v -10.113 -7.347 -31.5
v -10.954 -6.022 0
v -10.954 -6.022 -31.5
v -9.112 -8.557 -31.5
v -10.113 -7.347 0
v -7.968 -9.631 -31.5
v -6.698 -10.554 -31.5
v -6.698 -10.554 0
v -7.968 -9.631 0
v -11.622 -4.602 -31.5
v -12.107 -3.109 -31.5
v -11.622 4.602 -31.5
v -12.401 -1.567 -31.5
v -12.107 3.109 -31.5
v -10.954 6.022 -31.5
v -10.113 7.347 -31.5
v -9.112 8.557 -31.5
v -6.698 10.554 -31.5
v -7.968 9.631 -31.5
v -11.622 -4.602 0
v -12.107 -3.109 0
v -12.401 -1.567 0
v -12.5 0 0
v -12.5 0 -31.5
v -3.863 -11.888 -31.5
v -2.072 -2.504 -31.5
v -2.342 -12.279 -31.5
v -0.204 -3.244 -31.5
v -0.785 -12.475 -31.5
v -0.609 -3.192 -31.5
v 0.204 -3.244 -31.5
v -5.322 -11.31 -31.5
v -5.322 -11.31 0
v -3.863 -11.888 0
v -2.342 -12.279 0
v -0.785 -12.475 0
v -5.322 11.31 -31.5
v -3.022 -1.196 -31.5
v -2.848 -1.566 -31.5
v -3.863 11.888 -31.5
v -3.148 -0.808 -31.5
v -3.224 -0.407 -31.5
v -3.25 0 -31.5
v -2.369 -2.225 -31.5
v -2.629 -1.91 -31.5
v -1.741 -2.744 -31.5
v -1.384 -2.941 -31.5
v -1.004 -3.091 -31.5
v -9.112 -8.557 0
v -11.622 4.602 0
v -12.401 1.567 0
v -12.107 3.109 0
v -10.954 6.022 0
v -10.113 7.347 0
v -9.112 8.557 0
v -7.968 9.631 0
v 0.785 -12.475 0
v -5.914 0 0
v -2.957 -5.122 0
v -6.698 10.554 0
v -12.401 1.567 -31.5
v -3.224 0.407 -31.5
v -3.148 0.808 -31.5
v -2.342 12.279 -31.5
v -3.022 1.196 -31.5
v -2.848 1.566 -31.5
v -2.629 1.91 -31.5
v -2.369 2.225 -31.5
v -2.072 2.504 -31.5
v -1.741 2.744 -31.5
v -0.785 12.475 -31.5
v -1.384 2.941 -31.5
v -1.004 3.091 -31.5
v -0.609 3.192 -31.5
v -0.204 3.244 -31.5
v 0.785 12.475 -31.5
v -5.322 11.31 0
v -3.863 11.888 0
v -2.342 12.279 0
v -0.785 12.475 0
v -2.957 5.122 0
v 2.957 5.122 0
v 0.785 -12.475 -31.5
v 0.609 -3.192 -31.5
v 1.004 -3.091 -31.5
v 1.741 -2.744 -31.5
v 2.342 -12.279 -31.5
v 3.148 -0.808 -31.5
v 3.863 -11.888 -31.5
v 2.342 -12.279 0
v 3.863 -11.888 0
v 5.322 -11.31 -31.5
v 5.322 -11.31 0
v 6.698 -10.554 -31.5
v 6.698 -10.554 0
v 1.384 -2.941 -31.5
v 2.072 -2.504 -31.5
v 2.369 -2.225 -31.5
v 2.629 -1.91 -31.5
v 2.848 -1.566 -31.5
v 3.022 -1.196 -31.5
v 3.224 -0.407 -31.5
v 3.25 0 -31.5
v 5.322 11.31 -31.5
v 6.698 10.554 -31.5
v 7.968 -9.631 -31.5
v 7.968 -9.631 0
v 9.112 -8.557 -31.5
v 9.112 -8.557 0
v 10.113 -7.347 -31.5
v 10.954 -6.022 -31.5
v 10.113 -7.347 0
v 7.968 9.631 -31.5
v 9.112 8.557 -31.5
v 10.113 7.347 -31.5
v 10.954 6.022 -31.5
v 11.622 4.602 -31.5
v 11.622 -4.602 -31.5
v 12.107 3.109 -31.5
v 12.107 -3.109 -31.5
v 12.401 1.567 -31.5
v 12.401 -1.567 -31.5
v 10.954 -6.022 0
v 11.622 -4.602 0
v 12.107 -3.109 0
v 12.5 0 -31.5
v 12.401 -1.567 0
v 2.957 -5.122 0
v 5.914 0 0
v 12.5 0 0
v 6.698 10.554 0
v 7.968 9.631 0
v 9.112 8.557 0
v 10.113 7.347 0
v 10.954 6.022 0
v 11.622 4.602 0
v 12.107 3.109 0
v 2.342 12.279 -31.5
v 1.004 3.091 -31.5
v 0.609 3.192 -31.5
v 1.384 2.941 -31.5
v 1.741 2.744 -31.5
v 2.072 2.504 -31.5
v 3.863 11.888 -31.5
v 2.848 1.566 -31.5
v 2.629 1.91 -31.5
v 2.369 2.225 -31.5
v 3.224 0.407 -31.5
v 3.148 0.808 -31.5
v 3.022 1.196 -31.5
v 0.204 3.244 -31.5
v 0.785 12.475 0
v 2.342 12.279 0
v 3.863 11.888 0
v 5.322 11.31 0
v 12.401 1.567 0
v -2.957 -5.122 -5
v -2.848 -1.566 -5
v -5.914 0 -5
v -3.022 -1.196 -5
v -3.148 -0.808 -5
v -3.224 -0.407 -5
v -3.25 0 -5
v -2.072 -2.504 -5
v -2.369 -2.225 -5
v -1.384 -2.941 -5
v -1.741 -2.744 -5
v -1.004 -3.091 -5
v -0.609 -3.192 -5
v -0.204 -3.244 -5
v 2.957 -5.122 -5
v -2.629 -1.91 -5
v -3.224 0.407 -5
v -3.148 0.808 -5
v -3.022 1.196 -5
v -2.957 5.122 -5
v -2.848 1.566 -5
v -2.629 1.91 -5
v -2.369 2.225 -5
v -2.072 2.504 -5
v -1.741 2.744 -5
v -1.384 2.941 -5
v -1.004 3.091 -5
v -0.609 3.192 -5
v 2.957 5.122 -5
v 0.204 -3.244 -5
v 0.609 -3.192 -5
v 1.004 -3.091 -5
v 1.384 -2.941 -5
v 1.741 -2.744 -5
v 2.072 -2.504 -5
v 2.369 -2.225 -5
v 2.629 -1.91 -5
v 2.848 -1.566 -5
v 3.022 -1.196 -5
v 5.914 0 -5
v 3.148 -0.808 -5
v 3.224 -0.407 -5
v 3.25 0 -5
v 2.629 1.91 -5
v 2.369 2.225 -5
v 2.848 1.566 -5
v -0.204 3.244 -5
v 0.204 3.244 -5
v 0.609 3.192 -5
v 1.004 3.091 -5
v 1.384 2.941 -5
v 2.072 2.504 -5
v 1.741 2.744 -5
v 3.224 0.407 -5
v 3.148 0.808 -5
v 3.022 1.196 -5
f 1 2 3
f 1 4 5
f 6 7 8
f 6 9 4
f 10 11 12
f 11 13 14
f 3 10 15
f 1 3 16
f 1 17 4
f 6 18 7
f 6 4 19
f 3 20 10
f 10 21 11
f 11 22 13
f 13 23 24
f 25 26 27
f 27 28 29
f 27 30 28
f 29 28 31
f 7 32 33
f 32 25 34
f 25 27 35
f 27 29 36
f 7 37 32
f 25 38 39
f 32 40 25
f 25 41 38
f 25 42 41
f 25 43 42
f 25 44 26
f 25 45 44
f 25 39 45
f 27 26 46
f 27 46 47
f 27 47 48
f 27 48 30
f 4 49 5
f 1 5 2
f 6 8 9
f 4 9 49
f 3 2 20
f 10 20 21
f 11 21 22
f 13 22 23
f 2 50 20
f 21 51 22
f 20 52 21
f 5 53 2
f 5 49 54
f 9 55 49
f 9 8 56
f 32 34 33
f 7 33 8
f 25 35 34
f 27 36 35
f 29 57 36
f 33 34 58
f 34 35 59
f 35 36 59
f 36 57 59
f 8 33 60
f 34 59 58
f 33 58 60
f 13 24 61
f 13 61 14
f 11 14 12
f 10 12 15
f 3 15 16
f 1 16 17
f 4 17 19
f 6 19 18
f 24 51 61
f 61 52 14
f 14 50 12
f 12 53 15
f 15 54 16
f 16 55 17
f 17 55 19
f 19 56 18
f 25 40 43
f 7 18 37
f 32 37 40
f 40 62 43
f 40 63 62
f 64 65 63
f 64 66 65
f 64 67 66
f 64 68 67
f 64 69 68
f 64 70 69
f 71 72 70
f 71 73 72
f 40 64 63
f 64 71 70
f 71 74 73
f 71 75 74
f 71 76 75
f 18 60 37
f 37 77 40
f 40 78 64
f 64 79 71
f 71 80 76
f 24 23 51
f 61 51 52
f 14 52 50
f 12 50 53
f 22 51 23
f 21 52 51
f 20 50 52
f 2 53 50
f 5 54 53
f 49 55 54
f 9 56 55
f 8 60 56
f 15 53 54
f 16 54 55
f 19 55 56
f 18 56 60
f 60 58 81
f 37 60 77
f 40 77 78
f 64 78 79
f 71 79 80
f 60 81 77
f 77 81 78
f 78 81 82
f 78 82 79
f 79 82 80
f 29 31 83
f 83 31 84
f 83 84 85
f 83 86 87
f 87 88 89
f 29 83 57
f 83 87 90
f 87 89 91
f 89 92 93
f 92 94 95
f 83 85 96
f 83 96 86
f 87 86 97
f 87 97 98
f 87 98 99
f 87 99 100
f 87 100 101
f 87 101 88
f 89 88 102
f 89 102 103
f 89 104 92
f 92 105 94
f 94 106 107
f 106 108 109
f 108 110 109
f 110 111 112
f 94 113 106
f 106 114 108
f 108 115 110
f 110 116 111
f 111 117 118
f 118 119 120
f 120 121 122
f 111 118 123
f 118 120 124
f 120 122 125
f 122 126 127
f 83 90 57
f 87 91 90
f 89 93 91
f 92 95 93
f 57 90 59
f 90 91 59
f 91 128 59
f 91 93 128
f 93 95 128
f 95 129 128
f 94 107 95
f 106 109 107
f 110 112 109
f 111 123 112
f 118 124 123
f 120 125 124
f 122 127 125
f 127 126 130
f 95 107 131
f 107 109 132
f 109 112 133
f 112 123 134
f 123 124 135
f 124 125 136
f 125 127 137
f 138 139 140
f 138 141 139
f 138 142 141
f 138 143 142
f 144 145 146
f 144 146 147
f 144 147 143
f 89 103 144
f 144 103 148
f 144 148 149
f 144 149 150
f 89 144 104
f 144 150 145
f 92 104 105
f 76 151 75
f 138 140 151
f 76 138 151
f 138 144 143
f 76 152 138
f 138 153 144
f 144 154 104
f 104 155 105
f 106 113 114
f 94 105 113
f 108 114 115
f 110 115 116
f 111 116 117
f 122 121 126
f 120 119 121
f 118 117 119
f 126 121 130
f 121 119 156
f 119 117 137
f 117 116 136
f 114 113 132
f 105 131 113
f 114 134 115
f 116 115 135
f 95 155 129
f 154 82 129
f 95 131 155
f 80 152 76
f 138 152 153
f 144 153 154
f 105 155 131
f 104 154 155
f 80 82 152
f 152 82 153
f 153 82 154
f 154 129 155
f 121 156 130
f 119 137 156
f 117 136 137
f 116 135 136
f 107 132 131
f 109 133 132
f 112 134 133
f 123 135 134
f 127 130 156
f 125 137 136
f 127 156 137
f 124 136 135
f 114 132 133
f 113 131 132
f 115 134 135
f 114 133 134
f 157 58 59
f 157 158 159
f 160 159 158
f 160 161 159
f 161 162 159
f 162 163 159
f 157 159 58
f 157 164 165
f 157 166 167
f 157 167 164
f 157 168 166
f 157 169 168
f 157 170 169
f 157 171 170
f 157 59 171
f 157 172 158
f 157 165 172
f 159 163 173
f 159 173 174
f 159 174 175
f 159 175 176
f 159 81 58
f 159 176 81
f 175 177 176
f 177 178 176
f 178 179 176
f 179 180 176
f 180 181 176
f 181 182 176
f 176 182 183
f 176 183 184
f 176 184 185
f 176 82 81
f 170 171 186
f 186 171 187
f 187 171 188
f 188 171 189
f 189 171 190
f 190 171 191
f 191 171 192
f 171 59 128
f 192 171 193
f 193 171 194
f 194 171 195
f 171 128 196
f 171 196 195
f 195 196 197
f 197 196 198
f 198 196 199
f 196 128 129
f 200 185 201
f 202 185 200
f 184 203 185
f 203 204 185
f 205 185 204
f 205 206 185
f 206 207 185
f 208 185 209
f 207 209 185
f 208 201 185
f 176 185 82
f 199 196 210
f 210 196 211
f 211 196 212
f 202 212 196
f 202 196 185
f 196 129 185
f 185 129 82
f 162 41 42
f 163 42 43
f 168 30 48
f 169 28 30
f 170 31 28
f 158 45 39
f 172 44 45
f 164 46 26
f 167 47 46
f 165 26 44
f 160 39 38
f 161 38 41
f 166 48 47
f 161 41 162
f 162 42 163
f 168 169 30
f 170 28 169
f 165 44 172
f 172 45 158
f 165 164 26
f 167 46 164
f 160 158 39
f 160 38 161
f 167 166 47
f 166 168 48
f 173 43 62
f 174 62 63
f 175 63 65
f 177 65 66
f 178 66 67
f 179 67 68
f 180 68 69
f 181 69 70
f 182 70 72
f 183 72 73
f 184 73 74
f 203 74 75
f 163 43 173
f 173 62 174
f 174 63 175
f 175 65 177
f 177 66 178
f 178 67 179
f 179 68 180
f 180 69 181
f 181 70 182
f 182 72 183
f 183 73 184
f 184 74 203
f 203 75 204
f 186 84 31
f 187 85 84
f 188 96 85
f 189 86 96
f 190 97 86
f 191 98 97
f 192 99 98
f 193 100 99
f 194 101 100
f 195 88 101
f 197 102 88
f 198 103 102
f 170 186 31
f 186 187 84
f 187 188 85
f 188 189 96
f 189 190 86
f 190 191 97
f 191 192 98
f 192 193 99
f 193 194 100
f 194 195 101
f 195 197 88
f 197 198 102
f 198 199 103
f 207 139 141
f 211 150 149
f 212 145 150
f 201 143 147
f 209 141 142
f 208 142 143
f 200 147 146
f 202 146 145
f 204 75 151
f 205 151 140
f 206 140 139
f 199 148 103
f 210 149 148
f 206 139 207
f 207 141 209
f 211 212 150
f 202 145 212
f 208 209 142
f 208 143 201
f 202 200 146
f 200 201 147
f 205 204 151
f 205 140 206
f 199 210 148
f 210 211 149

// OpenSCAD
$fn = 50;

difference() {
	union() {
		translate(v = [0, 0, -31.5]) {
			cylinder(h = 31.5, r = 12.5);
		}
	}
	union() {
		translate(v = [0, 0, 0]) {
			rotate(a = [0, 0, 0]) {
				difference() {
					union() {
						translate(v = [0, 0, -5]) {
							linear_extrude(height = 5) {
								polygon(points = [[5.914249999999999, 0.0], [2.957125, 5.1218907443321156], [-2.9571249999999982, 5.1218907443321156], [-5.914249999999999, 7.242867331857232e-16], [-2.9571250000000022, -5.121890744332115], [2.9571249999999956, -5.121890744332118]]);
							}
						}
					}
					union();
				}
			}
		}
		#translate(v = [0, 0, -100.0]) {
			cylinder(h = 200, r = 3.25);
		}
	}
}
